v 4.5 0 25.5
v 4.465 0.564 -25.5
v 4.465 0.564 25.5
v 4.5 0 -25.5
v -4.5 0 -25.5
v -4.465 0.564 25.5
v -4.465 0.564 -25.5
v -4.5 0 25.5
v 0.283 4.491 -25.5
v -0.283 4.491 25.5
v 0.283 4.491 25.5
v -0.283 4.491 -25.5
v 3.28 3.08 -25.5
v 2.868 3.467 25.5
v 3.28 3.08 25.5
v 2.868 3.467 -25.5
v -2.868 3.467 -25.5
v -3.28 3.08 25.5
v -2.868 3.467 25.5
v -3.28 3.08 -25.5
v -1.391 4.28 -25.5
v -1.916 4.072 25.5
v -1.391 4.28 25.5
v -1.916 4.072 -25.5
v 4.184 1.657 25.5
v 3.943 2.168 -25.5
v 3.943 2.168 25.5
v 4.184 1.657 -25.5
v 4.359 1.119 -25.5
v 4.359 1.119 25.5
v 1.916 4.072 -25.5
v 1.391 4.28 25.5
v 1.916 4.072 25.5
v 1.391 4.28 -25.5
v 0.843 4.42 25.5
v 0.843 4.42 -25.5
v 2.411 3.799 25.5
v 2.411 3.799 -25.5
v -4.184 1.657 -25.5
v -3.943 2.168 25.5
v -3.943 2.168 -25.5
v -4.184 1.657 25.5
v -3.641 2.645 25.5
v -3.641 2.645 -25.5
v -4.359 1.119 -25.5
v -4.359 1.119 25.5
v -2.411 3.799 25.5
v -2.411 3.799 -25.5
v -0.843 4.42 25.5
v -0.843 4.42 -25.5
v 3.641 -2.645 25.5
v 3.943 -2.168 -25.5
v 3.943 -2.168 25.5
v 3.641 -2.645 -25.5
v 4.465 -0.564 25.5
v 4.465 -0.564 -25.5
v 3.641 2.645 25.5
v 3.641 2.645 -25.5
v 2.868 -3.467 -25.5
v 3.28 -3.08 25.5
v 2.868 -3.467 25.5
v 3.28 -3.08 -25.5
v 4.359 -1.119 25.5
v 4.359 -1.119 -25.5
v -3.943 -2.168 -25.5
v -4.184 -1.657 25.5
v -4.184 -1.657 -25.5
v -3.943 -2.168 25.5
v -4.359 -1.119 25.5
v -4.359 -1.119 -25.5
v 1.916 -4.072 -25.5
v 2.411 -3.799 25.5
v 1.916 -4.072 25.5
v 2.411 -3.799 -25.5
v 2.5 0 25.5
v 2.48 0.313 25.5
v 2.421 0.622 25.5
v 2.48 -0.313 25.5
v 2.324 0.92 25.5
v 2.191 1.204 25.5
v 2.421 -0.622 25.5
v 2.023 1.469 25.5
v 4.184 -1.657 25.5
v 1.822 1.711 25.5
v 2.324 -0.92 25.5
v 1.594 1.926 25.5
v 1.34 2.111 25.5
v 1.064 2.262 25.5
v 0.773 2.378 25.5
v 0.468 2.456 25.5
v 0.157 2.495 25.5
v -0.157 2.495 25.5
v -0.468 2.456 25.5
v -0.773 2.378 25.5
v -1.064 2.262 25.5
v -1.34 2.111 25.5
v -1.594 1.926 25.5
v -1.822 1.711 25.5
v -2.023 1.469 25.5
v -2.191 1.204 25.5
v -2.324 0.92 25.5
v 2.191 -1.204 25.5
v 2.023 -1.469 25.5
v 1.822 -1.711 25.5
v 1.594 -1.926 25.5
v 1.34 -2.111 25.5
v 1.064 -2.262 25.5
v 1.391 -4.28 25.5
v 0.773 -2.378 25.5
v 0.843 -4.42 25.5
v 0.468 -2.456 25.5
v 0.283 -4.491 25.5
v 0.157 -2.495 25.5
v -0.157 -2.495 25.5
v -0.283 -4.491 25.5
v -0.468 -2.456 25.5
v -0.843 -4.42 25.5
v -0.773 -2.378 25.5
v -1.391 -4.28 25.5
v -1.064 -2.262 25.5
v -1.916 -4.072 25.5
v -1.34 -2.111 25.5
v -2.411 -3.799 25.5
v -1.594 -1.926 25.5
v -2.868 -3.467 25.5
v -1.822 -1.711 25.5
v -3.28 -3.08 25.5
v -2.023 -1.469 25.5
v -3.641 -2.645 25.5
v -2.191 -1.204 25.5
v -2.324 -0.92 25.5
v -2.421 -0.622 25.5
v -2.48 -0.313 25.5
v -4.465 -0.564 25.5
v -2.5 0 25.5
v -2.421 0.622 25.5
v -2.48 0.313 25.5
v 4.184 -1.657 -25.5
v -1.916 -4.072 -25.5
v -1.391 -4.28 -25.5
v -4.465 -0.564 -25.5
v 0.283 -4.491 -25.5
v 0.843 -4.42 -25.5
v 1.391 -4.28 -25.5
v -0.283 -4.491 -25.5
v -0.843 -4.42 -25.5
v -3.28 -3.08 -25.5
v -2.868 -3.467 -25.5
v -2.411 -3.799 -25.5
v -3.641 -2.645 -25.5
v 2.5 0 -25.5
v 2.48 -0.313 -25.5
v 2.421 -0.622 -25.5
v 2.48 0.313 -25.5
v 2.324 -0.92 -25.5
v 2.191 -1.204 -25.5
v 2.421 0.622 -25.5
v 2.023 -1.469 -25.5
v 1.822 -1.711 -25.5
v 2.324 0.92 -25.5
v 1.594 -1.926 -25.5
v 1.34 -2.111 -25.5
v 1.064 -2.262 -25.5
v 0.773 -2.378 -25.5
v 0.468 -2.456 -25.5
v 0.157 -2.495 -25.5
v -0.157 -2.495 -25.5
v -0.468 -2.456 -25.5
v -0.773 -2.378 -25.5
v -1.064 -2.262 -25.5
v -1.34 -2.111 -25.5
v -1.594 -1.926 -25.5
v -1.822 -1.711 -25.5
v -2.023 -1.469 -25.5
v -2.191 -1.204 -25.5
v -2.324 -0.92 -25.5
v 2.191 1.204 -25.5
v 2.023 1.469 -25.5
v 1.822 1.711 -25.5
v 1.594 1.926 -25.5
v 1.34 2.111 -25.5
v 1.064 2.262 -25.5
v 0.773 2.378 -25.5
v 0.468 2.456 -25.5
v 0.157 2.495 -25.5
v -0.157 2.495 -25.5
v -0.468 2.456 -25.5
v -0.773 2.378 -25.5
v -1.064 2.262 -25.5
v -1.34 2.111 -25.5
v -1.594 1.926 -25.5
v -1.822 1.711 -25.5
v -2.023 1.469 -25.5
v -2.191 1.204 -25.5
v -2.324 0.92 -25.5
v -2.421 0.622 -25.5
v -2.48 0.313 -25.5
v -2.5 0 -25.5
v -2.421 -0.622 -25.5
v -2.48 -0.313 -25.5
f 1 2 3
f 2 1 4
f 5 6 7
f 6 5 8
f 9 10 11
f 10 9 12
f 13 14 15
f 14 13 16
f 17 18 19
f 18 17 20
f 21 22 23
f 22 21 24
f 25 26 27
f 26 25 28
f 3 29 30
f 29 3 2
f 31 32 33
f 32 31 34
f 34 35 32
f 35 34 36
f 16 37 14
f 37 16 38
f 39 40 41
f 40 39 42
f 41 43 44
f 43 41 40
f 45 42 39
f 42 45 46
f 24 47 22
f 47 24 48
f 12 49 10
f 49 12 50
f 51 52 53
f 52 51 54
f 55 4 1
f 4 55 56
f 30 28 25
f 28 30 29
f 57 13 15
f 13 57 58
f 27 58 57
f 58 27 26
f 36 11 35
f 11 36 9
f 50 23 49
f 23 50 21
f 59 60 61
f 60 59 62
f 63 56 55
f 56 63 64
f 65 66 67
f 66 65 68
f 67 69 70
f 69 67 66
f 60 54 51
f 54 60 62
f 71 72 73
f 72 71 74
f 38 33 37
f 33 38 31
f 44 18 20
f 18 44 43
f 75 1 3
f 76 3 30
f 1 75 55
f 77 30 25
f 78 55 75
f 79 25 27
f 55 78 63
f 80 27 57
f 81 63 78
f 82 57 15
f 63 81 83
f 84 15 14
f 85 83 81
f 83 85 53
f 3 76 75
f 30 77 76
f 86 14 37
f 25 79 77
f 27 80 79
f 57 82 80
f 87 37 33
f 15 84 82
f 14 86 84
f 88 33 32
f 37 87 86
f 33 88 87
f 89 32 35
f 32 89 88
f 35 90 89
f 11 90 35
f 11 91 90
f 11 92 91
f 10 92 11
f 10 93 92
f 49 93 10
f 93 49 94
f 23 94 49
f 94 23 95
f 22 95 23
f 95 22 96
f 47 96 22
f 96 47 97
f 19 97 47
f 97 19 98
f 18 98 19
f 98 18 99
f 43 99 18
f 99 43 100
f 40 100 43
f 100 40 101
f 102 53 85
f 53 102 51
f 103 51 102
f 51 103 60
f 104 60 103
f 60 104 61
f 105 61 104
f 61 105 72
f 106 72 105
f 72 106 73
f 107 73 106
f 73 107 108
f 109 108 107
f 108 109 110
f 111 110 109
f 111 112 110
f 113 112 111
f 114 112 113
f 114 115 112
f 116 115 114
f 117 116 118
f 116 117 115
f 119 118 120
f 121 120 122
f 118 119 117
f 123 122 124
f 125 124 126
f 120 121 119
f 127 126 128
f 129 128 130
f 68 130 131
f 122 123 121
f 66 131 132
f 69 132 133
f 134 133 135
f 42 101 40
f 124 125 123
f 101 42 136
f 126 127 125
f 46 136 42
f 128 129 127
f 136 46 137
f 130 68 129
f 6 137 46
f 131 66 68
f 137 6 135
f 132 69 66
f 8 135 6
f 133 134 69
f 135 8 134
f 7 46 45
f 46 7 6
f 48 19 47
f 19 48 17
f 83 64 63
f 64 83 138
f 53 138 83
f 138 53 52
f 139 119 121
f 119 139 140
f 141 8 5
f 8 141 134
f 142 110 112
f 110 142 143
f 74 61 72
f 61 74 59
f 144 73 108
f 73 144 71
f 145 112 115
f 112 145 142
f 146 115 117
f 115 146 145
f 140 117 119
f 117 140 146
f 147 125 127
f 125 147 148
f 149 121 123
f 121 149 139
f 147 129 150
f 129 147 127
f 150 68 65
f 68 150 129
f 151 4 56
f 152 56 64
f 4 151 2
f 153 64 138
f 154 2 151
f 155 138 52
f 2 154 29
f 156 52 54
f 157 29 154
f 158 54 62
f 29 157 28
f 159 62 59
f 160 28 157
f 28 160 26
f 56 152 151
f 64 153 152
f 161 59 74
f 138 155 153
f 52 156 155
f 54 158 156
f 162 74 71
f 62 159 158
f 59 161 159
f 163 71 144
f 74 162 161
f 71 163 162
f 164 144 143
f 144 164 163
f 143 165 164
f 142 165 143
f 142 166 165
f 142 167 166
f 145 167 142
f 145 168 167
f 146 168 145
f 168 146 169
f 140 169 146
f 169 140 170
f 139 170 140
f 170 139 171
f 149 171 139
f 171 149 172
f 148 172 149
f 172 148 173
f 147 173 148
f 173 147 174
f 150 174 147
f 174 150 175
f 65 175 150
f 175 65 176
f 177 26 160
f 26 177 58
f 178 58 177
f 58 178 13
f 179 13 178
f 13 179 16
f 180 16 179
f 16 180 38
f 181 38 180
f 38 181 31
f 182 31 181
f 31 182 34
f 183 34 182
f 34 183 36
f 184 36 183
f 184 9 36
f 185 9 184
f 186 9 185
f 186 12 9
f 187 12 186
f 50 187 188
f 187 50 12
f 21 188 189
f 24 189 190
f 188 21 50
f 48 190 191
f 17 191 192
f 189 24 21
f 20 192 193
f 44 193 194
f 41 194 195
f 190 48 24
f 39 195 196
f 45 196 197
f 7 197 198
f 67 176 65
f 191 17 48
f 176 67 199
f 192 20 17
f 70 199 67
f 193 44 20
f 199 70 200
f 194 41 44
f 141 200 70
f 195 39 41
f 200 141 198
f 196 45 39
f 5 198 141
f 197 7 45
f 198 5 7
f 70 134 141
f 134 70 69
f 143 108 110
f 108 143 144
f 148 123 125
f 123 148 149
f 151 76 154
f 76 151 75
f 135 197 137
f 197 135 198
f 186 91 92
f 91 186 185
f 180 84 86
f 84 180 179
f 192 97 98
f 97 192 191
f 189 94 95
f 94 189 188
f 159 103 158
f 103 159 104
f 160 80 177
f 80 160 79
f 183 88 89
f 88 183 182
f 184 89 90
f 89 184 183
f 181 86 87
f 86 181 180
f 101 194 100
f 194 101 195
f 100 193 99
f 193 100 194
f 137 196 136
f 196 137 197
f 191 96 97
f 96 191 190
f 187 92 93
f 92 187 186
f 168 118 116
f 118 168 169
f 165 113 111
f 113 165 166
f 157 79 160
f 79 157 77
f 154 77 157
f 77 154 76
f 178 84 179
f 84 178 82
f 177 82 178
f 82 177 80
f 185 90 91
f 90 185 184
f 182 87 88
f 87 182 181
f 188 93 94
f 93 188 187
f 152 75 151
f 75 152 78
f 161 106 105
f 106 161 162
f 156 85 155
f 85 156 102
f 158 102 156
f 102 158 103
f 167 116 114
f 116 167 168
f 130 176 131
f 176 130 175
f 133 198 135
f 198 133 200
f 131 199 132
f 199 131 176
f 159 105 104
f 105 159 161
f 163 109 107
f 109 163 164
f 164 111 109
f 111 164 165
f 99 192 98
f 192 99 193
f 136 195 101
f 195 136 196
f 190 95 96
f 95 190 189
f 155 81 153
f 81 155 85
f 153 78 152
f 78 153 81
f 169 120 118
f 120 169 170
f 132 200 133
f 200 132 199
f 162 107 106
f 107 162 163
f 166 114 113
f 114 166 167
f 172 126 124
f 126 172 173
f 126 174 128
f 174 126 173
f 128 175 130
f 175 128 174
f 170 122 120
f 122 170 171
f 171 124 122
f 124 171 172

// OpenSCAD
$fn = 50;


difference() {
	union() {
		translate(v = [0, 0, -25.5000000000]) {
			cylinder(h = 51, r = 4.5000000000);
		}
	}
	union() {
		translate(v = [0, 0, -100.0000000000]) {
			cylinder(h = 200, r = 2.5000000000);
		}
	}
}
